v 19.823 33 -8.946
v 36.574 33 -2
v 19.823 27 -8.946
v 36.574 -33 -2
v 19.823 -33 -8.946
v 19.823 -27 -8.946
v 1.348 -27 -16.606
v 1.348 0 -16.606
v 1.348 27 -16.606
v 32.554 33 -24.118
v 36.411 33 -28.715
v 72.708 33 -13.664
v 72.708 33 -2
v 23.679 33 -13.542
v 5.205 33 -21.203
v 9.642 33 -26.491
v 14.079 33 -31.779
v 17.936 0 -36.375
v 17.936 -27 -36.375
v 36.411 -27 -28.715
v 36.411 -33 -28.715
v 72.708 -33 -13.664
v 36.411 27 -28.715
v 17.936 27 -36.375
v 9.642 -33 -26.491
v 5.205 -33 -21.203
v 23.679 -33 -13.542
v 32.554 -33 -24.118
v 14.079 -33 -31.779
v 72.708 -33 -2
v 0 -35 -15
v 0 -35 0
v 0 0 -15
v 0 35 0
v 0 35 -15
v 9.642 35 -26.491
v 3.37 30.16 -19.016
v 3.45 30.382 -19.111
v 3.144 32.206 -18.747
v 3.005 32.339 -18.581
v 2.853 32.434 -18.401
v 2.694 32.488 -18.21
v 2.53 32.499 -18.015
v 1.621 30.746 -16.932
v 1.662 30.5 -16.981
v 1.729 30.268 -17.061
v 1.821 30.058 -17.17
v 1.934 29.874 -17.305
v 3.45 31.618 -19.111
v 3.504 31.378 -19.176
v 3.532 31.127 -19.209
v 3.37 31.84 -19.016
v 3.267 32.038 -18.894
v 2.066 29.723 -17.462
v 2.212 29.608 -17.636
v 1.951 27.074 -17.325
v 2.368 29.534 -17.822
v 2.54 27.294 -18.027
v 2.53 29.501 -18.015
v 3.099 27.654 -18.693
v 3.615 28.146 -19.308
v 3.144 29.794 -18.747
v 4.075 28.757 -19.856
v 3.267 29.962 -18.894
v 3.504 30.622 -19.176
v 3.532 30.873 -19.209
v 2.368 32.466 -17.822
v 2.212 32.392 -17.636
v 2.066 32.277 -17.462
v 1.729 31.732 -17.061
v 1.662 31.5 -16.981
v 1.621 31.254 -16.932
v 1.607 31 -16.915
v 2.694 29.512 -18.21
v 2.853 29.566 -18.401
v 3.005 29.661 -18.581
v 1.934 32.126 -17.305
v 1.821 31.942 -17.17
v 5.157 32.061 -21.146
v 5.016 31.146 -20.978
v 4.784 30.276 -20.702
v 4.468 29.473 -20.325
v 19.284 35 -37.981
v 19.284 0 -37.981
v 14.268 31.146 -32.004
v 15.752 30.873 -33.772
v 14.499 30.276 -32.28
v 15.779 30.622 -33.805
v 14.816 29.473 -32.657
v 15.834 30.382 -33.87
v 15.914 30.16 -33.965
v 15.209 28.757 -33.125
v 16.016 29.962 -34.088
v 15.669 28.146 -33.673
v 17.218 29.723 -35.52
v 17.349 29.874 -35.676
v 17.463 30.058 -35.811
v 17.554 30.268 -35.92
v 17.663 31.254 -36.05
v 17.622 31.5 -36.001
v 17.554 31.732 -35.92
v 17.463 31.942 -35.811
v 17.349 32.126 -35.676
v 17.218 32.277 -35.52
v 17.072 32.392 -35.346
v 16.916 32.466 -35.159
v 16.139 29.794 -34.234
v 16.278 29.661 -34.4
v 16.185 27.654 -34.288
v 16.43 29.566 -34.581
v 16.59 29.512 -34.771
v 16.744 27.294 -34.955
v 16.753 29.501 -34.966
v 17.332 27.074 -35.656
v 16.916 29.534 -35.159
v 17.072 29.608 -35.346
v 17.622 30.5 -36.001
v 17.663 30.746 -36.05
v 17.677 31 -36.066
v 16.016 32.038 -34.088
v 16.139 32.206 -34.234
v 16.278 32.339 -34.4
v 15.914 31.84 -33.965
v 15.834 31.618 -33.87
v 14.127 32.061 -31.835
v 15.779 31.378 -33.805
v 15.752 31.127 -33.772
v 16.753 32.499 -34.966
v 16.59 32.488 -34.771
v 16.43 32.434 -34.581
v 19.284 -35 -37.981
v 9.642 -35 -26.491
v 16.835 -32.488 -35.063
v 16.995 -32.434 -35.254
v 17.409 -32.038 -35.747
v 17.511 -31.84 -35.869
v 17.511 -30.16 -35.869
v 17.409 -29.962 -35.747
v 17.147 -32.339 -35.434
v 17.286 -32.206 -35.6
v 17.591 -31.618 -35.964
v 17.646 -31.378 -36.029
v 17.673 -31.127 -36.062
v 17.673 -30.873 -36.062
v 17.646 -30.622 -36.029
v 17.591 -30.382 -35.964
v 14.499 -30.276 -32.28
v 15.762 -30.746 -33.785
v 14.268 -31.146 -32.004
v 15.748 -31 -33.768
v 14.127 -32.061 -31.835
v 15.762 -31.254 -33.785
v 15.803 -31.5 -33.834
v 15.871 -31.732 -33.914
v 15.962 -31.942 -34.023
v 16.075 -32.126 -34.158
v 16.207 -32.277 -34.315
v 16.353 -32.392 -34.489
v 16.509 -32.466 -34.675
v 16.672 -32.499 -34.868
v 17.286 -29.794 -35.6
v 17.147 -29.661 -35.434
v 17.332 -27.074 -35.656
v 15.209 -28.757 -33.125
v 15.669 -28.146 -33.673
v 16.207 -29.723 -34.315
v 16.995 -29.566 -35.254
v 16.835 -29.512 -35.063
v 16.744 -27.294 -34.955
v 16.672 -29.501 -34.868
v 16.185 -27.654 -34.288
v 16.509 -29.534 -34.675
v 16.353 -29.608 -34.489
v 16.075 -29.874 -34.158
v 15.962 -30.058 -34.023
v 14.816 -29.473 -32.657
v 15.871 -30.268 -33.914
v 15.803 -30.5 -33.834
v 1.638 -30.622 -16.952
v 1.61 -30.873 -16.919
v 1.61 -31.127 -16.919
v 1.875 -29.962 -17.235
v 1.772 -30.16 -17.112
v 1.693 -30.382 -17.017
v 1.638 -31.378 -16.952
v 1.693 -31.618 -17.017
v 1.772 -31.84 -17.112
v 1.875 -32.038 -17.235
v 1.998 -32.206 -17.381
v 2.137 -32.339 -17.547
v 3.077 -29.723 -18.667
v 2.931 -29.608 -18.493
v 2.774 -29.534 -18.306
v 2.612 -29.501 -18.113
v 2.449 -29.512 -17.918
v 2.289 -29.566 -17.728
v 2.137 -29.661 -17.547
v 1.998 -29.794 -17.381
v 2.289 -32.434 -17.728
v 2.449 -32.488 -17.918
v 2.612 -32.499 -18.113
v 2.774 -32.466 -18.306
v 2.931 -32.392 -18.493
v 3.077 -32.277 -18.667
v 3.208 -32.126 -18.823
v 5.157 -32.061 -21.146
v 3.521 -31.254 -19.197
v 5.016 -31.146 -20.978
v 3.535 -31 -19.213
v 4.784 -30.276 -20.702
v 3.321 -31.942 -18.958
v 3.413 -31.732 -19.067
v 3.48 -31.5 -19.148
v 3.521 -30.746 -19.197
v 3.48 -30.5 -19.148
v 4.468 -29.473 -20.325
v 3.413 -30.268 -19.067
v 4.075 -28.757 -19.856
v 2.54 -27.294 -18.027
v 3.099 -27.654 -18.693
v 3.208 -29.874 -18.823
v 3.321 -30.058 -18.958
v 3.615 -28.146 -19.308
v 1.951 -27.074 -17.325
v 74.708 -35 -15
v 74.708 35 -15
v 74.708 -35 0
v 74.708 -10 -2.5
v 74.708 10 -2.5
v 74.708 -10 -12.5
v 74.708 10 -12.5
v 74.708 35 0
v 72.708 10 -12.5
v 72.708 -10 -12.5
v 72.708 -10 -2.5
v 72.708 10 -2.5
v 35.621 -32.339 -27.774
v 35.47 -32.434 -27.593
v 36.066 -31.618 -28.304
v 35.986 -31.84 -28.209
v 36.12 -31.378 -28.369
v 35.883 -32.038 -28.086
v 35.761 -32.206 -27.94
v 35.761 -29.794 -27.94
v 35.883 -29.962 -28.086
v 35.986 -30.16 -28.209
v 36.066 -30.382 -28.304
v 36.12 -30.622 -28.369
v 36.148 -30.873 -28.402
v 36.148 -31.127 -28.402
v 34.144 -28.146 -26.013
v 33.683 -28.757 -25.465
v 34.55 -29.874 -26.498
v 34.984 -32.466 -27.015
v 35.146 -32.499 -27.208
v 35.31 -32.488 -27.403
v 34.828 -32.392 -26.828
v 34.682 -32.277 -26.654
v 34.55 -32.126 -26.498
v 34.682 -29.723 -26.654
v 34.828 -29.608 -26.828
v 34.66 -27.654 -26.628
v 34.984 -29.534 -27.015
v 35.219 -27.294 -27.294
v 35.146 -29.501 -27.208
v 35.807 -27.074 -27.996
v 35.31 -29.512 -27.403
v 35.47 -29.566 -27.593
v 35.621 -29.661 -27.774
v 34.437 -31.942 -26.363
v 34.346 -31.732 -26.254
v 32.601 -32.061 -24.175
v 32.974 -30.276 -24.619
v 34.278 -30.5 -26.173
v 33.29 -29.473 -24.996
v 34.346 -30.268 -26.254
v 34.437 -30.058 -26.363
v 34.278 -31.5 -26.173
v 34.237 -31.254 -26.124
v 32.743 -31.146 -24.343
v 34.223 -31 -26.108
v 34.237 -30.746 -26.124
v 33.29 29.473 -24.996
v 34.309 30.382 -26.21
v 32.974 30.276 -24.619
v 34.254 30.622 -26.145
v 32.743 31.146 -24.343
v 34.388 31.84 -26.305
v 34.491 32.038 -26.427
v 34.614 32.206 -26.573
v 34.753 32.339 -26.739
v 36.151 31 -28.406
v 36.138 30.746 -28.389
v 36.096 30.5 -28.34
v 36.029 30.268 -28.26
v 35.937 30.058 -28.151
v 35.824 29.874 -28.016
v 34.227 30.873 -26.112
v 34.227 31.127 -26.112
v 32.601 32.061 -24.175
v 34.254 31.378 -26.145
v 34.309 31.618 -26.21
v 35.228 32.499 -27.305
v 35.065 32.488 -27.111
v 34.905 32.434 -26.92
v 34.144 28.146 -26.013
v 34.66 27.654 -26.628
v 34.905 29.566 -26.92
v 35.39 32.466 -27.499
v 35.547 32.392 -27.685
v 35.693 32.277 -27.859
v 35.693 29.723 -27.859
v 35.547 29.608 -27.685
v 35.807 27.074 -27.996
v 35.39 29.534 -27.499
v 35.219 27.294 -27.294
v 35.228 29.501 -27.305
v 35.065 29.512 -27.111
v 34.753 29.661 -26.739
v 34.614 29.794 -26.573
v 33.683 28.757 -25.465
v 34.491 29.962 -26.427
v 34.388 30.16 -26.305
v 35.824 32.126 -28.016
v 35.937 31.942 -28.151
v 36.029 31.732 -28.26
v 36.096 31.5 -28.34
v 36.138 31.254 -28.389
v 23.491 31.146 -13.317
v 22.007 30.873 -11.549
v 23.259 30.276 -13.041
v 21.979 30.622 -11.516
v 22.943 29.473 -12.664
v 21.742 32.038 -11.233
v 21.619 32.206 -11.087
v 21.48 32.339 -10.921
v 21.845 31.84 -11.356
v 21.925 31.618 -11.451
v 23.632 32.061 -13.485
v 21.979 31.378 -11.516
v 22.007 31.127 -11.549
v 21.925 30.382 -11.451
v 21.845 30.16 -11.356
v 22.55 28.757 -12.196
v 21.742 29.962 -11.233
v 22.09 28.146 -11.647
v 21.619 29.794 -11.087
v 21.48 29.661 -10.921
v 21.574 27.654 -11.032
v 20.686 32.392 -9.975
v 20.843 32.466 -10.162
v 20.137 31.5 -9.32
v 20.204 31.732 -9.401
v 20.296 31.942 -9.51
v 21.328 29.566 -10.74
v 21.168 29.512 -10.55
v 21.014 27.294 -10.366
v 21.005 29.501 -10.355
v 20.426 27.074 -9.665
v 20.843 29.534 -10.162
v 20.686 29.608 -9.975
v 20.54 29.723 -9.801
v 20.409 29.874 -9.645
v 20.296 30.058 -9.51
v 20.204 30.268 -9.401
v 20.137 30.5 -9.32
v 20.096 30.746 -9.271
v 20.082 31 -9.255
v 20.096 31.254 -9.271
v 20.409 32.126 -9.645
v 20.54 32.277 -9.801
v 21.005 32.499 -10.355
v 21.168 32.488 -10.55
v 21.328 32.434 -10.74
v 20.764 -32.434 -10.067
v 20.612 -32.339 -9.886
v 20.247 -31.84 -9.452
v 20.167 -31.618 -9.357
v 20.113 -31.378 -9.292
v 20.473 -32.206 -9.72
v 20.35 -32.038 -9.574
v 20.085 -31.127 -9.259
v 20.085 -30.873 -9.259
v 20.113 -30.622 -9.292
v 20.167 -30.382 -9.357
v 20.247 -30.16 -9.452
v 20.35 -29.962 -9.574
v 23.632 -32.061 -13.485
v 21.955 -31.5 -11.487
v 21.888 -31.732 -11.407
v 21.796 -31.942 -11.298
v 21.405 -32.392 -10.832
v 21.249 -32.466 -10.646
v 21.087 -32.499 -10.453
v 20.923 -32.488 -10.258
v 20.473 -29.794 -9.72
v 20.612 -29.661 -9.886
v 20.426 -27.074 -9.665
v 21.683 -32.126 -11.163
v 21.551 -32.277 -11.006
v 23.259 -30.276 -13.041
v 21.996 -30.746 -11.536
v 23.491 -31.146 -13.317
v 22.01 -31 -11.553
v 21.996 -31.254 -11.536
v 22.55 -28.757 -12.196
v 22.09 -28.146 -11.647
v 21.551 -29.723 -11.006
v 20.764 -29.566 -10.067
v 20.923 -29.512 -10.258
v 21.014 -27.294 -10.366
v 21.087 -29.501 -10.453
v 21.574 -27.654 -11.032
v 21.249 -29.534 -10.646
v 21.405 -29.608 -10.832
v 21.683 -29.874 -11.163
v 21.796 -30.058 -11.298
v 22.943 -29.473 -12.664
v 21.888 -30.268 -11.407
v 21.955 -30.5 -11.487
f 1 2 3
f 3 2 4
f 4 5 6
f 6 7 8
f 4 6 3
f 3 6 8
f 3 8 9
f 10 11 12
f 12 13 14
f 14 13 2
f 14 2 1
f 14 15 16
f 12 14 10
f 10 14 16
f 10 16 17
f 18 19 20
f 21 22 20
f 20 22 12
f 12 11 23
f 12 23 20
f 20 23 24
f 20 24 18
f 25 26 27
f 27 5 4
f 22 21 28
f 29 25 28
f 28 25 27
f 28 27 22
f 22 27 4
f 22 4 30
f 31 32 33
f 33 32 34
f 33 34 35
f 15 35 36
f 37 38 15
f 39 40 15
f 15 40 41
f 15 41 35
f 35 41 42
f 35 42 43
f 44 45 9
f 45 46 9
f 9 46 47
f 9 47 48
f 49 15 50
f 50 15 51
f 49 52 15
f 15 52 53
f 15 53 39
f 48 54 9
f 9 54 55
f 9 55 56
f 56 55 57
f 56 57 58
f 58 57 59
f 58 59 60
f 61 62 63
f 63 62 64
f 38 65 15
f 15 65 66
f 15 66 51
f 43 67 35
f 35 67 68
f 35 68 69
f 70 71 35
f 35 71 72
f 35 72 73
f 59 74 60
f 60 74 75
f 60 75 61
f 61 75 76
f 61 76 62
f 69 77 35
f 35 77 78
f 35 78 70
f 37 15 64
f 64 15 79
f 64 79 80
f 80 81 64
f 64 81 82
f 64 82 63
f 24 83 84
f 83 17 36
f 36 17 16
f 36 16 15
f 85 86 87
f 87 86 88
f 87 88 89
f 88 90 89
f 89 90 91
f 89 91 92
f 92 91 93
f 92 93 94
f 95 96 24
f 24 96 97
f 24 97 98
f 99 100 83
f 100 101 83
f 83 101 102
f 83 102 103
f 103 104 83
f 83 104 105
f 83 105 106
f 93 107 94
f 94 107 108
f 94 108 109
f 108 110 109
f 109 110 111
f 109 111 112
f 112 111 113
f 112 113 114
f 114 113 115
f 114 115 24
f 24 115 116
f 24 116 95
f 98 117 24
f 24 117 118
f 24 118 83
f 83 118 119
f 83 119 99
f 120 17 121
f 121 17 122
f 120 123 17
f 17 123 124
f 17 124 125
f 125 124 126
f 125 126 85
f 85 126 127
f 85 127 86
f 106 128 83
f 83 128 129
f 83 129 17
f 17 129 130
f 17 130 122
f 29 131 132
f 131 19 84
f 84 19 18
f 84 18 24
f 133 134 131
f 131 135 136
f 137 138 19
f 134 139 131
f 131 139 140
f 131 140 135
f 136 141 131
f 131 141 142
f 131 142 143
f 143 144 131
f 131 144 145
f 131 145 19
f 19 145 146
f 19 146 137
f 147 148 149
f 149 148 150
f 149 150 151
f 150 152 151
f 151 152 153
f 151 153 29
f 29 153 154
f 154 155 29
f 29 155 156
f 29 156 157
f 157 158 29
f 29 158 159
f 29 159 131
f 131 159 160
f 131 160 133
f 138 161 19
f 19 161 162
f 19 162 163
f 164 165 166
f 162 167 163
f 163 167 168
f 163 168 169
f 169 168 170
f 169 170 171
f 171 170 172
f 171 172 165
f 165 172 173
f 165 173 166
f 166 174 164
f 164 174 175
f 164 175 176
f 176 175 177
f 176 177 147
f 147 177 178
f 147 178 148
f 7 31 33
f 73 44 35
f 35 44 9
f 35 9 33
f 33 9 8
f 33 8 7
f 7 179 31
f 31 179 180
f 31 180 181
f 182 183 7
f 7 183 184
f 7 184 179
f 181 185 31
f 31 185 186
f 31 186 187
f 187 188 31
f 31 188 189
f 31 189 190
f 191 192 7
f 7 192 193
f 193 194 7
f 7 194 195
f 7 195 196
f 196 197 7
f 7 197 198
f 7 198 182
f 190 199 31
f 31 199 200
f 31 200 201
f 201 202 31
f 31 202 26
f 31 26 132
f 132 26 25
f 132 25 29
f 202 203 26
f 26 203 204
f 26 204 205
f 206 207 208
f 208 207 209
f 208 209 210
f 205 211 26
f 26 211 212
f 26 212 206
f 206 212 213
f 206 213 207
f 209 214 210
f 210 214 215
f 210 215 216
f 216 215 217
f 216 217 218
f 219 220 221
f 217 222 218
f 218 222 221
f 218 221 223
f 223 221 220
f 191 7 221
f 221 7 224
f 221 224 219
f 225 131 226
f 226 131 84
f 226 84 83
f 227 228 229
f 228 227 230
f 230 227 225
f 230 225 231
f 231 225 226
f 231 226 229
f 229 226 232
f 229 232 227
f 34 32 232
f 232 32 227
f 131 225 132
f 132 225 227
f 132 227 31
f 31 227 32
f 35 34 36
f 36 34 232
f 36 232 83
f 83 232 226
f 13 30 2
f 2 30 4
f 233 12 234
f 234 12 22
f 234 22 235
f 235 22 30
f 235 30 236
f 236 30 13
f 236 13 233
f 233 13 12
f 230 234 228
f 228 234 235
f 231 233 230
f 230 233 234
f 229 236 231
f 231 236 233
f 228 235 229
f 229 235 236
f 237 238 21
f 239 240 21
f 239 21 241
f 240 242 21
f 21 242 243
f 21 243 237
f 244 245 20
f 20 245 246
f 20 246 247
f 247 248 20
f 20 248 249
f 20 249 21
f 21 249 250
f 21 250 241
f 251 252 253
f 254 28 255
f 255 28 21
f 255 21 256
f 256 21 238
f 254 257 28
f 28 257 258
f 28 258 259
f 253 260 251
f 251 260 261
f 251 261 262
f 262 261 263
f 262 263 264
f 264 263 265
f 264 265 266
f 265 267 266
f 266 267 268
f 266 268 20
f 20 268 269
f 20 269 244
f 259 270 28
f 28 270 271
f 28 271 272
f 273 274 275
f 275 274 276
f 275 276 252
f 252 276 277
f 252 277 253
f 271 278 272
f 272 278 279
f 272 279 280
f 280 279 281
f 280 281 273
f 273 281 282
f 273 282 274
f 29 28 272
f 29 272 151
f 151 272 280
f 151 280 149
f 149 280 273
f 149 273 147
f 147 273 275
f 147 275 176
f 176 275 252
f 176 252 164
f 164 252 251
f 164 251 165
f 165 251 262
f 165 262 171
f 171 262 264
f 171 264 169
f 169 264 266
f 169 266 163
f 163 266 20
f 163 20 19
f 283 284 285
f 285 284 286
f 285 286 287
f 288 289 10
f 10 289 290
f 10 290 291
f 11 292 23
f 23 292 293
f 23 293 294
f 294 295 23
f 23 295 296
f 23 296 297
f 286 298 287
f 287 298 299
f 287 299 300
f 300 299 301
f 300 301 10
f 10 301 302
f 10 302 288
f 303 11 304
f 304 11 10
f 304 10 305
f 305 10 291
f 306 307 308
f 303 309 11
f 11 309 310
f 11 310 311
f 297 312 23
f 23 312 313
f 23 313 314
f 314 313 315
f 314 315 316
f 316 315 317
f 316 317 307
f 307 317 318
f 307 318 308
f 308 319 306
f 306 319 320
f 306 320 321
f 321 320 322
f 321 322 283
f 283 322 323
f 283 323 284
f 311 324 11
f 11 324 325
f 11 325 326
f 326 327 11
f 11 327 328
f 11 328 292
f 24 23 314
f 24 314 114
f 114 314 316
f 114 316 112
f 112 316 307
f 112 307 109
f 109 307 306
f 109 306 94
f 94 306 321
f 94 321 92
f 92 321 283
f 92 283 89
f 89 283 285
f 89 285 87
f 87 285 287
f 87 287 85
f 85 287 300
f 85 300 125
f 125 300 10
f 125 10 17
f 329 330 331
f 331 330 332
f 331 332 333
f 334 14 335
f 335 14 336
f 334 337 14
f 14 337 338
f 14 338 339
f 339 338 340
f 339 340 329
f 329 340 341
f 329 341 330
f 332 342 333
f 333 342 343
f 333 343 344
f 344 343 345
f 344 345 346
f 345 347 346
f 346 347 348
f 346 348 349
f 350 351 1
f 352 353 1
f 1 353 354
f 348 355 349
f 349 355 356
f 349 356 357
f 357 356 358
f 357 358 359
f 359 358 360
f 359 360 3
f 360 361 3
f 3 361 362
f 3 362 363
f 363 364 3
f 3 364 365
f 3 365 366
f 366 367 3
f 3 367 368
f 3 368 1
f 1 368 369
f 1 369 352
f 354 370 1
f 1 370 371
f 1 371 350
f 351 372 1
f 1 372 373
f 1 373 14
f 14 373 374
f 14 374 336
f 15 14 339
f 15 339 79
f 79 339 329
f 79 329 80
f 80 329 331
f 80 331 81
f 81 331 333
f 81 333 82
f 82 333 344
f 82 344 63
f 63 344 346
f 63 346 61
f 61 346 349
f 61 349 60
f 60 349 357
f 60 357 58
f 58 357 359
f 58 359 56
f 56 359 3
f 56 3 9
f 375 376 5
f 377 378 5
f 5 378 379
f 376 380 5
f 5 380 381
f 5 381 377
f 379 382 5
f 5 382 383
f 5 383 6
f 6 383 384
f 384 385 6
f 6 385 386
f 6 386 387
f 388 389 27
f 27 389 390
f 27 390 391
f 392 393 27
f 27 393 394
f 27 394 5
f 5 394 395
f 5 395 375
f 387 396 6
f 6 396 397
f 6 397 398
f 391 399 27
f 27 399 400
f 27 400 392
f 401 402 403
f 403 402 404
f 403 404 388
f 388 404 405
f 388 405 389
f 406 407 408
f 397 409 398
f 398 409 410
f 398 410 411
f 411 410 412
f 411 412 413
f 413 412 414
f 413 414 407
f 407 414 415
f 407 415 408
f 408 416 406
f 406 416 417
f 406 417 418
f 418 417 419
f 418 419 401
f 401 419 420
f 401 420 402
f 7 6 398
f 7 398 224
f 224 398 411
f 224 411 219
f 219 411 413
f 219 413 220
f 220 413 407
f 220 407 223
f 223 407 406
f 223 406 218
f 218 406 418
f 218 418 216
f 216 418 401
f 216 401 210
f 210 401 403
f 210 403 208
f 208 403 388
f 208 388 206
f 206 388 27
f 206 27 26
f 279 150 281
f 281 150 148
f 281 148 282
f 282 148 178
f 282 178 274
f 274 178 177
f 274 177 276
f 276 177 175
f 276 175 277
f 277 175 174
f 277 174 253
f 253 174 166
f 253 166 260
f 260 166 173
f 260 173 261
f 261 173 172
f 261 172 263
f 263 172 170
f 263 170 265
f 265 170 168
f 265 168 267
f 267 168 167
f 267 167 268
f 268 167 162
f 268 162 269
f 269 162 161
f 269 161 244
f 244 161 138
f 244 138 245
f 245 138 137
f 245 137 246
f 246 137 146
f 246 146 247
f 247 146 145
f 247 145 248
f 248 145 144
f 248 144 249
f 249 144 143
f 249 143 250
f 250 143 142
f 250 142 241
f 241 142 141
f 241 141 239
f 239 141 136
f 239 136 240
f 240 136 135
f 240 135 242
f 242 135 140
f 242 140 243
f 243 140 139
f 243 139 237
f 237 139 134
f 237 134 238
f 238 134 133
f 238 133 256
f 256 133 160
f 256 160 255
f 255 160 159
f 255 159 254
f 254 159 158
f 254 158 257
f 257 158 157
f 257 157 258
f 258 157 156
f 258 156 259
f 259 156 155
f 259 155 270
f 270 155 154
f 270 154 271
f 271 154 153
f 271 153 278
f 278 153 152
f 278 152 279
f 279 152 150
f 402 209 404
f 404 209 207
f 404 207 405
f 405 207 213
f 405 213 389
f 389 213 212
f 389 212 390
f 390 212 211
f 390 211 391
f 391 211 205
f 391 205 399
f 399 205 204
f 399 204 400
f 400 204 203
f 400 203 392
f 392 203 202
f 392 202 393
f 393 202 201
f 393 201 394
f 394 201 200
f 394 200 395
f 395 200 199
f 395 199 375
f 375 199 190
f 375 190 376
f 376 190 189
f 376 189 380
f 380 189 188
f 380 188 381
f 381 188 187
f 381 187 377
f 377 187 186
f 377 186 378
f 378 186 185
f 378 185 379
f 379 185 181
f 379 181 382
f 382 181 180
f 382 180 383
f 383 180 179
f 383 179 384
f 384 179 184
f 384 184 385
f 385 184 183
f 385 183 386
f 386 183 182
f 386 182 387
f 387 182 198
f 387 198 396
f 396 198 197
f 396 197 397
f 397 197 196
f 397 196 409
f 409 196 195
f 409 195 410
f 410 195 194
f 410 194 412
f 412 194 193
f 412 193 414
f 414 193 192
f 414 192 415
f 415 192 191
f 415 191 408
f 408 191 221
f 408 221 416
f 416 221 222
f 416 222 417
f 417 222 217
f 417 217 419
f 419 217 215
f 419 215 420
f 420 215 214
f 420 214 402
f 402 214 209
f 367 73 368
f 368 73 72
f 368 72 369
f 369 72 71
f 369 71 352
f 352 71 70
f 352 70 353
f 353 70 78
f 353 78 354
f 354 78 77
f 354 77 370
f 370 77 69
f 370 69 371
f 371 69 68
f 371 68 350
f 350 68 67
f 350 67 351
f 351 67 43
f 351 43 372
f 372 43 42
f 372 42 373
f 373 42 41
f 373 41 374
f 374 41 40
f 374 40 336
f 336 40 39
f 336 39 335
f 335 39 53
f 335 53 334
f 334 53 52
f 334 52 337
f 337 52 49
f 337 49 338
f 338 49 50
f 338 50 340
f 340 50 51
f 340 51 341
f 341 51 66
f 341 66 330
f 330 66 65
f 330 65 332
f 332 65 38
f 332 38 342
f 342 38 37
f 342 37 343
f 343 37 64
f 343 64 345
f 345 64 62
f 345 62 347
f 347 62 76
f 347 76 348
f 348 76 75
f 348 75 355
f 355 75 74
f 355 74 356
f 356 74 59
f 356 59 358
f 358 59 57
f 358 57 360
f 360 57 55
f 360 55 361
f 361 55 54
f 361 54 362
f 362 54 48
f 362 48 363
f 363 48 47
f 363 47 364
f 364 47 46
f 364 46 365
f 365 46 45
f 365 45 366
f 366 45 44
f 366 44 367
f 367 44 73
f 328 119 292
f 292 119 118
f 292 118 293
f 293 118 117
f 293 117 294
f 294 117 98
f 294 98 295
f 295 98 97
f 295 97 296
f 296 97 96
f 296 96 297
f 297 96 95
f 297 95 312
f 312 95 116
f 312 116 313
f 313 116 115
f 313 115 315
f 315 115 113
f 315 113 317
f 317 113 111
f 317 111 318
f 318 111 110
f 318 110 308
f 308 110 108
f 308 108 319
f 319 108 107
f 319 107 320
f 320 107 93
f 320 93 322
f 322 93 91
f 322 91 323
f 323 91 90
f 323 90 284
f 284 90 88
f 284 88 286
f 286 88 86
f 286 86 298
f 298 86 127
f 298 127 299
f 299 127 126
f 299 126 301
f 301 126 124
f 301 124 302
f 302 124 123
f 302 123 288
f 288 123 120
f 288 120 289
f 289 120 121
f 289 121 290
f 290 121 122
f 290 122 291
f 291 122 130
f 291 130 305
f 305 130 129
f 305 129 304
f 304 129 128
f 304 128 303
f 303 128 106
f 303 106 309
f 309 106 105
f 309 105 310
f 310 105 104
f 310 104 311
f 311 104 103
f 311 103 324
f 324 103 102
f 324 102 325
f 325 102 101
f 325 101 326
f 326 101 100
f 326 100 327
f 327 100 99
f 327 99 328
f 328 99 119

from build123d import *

# Parameters (mm, degrees)
BOSS_EXTRUDE1_DEPTH      = 35
BOSS_EXTRUDE1_DEPTH_BACK = 35
CUT_EXTRUDE1_DEPTH       = 33
CUT_EXTRUDE1_DEPTH_BACK  = 33
CUT_EXTRUDE2_REACH       = 92.823
SKETCH3_W                = 10
SKETCH3_H                = 20
BOSS_EXTRUDE8_DEPTH      = 20
SKETCH5_R                = 1.5
CUT_EXTRUDE3_DEPTH       = 19.999999693


with BuildPart() as part:
    # Sketch1 → Boss-Extrude1 (new, two sides: drawn at the far end of the back side and taken through both)
    with BuildSketch(Plane(origin=(0, 0, 0), x_dir=(1, 0, 0), z_dir=(0, 1, 0)).offset(-BOSS_EXTRUDE1_DEPTH_BACK)):
        Polygon((0, 15), (19.283628291, 37.981333294), (74.707976009, 15), (74.707976009, 0), (0, 0), align=None)
    extrude(amount=BOSS_EXTRUDE1_DEPTH + BOSS_EXTRUDE1_DEPTH_BACK)

    # Sketch2 → Cut-Extrude1 (cut, two sides: drawn at the far end of the back side and taken through both)
    with BuildSketch(Plane(origin=(0, 0, 0), x_dir=(1, 0, 0), z_dir=(0, 1, 0)).offset(-CUT_EXTRUDE1_DEPTH_BACK)):
        Polygon((21.032566766, 35.091034272), (72.707976009, 13.664173121), (72.707976009, 2), (36.573879749, 2), (1.347807304, 16.606254197), (17.935820986, 36.375079097), align=None)
    extrude(amount=CUT_EXTRUDE1_DEPTH + CUT_EXTRUDE1_DEPTH_BACK, mode=Mode.SUBTRACT)

    # Sketch3 → Cut-Extrude2 (cut, up to next)
    with BuildSketch(Plane(origin=(74.707976009, 0, 0), x_dir=(0, 0, -1), z_dir=(1, 0, 0)), mode=Mode.PRIVATE) as cut_extrude2_sk1:
        with Locations((7.5, 0)):
            Rectangle(SKETCH3_W, SKETCH3_H)
    cut_extrude2_tool1 = extrude(cut_extrude2_sk1.sketch, amount=-CUT_EXTRUDE2_REACH, mode=Mode.PRIVATE) & part.part
    add(cut_extrude2_tool1.solids().sort_by_distance((74.707976, 0, -7.5))[0], mode=Mode.SUBTRACT)

    # 3DSketch2 → Boss-Extrude8 (add, along a direction that is not the sketch's normal)
    with BuildSketch(Plane(origin=(17.935820986, -33, -36.375079097), x_dir=(-0.23407626920535343, 0.9313371729360082, 0.2789612347665302), z_dir=(-0.7660444431189789, 0, -0.6427876096865383))):
        with BuildLine():
            Line((0, 0), (2.184948176, -5.588023038))
            ThreePointArc((2.184948176, -5.588023038), (5.496320655, -2.406337312), (5.588023038, 2.184948176))
            Line((5.588023038, 2.184948176), (0, 0))
        make_face()
        with BuildLine():
            Line((61.468253414, 24.034429934), (55.880230376, 21.849481758))
            ThreePointArc((55.880230376, 21.849481758), (59.061916102, 18.538109279), (63.65320159, 18.446406897))
            Line((63.65320159, 18.446406897), (61.468253414, 24.034429934))
        make_face()
        with BuildLine():
            Line((70.865849574, 0), (68.680901398, 5.588023038))
            ThreePointArc((68.680901398, 5.588023038), (65.369528919, 2.406337312), (65.277826536, -2.184948176))
            Line((65.277826536, -2.184948176), (70.865849574, 0))
        make_face()
        with BuildLine():
            Line((9.39759616, -24.034429934), (14.985619198, -21.849481758))
            ThreePointArc((14.985619198, -21.849481758), (11.803933472, -18.538109279), (7.212647984, -18.446406897))
            Line((7.212647984, -18.446406897), (9.39759616, -24.034429934))
        make_face()
    extrude(amount=-BOSS_EXTRUDE8_DEPTH, dir=(-0.9237391286459794, 0, -0.38302222155948973))

    # Sketch5 → Cut-Extrude3 (cut, along a direction that is not the sketch's normal)
    with BuildSketch(Plane(origin=(-7.386058148, 0, -6.197638667), x_dir=(-0.6427876096865378, 0, 0.7660444431189795), z_dir=(-0.7660444431189795, 0, -0.6427876096865378))):
        with Locations((-37.490666647, -31)):
            Circle(SKETCH5_R)
        with Locations((-37.490666647, 31)):
            Circle(SKETCH5_R)
        with Locations((-15.490666647, 31)):
            Circle(SKETCH5_R)
        with Locations((-15.490666647, -31)):
            Circle(SKETCH5_R)
    extrude(amount=-CUT_EXTRUDE3_DEPTH, dir=(-0.9237391286459794, 0, -0.38302222155948973), mode=Mode.SUBTRACT)


solid = part.part
